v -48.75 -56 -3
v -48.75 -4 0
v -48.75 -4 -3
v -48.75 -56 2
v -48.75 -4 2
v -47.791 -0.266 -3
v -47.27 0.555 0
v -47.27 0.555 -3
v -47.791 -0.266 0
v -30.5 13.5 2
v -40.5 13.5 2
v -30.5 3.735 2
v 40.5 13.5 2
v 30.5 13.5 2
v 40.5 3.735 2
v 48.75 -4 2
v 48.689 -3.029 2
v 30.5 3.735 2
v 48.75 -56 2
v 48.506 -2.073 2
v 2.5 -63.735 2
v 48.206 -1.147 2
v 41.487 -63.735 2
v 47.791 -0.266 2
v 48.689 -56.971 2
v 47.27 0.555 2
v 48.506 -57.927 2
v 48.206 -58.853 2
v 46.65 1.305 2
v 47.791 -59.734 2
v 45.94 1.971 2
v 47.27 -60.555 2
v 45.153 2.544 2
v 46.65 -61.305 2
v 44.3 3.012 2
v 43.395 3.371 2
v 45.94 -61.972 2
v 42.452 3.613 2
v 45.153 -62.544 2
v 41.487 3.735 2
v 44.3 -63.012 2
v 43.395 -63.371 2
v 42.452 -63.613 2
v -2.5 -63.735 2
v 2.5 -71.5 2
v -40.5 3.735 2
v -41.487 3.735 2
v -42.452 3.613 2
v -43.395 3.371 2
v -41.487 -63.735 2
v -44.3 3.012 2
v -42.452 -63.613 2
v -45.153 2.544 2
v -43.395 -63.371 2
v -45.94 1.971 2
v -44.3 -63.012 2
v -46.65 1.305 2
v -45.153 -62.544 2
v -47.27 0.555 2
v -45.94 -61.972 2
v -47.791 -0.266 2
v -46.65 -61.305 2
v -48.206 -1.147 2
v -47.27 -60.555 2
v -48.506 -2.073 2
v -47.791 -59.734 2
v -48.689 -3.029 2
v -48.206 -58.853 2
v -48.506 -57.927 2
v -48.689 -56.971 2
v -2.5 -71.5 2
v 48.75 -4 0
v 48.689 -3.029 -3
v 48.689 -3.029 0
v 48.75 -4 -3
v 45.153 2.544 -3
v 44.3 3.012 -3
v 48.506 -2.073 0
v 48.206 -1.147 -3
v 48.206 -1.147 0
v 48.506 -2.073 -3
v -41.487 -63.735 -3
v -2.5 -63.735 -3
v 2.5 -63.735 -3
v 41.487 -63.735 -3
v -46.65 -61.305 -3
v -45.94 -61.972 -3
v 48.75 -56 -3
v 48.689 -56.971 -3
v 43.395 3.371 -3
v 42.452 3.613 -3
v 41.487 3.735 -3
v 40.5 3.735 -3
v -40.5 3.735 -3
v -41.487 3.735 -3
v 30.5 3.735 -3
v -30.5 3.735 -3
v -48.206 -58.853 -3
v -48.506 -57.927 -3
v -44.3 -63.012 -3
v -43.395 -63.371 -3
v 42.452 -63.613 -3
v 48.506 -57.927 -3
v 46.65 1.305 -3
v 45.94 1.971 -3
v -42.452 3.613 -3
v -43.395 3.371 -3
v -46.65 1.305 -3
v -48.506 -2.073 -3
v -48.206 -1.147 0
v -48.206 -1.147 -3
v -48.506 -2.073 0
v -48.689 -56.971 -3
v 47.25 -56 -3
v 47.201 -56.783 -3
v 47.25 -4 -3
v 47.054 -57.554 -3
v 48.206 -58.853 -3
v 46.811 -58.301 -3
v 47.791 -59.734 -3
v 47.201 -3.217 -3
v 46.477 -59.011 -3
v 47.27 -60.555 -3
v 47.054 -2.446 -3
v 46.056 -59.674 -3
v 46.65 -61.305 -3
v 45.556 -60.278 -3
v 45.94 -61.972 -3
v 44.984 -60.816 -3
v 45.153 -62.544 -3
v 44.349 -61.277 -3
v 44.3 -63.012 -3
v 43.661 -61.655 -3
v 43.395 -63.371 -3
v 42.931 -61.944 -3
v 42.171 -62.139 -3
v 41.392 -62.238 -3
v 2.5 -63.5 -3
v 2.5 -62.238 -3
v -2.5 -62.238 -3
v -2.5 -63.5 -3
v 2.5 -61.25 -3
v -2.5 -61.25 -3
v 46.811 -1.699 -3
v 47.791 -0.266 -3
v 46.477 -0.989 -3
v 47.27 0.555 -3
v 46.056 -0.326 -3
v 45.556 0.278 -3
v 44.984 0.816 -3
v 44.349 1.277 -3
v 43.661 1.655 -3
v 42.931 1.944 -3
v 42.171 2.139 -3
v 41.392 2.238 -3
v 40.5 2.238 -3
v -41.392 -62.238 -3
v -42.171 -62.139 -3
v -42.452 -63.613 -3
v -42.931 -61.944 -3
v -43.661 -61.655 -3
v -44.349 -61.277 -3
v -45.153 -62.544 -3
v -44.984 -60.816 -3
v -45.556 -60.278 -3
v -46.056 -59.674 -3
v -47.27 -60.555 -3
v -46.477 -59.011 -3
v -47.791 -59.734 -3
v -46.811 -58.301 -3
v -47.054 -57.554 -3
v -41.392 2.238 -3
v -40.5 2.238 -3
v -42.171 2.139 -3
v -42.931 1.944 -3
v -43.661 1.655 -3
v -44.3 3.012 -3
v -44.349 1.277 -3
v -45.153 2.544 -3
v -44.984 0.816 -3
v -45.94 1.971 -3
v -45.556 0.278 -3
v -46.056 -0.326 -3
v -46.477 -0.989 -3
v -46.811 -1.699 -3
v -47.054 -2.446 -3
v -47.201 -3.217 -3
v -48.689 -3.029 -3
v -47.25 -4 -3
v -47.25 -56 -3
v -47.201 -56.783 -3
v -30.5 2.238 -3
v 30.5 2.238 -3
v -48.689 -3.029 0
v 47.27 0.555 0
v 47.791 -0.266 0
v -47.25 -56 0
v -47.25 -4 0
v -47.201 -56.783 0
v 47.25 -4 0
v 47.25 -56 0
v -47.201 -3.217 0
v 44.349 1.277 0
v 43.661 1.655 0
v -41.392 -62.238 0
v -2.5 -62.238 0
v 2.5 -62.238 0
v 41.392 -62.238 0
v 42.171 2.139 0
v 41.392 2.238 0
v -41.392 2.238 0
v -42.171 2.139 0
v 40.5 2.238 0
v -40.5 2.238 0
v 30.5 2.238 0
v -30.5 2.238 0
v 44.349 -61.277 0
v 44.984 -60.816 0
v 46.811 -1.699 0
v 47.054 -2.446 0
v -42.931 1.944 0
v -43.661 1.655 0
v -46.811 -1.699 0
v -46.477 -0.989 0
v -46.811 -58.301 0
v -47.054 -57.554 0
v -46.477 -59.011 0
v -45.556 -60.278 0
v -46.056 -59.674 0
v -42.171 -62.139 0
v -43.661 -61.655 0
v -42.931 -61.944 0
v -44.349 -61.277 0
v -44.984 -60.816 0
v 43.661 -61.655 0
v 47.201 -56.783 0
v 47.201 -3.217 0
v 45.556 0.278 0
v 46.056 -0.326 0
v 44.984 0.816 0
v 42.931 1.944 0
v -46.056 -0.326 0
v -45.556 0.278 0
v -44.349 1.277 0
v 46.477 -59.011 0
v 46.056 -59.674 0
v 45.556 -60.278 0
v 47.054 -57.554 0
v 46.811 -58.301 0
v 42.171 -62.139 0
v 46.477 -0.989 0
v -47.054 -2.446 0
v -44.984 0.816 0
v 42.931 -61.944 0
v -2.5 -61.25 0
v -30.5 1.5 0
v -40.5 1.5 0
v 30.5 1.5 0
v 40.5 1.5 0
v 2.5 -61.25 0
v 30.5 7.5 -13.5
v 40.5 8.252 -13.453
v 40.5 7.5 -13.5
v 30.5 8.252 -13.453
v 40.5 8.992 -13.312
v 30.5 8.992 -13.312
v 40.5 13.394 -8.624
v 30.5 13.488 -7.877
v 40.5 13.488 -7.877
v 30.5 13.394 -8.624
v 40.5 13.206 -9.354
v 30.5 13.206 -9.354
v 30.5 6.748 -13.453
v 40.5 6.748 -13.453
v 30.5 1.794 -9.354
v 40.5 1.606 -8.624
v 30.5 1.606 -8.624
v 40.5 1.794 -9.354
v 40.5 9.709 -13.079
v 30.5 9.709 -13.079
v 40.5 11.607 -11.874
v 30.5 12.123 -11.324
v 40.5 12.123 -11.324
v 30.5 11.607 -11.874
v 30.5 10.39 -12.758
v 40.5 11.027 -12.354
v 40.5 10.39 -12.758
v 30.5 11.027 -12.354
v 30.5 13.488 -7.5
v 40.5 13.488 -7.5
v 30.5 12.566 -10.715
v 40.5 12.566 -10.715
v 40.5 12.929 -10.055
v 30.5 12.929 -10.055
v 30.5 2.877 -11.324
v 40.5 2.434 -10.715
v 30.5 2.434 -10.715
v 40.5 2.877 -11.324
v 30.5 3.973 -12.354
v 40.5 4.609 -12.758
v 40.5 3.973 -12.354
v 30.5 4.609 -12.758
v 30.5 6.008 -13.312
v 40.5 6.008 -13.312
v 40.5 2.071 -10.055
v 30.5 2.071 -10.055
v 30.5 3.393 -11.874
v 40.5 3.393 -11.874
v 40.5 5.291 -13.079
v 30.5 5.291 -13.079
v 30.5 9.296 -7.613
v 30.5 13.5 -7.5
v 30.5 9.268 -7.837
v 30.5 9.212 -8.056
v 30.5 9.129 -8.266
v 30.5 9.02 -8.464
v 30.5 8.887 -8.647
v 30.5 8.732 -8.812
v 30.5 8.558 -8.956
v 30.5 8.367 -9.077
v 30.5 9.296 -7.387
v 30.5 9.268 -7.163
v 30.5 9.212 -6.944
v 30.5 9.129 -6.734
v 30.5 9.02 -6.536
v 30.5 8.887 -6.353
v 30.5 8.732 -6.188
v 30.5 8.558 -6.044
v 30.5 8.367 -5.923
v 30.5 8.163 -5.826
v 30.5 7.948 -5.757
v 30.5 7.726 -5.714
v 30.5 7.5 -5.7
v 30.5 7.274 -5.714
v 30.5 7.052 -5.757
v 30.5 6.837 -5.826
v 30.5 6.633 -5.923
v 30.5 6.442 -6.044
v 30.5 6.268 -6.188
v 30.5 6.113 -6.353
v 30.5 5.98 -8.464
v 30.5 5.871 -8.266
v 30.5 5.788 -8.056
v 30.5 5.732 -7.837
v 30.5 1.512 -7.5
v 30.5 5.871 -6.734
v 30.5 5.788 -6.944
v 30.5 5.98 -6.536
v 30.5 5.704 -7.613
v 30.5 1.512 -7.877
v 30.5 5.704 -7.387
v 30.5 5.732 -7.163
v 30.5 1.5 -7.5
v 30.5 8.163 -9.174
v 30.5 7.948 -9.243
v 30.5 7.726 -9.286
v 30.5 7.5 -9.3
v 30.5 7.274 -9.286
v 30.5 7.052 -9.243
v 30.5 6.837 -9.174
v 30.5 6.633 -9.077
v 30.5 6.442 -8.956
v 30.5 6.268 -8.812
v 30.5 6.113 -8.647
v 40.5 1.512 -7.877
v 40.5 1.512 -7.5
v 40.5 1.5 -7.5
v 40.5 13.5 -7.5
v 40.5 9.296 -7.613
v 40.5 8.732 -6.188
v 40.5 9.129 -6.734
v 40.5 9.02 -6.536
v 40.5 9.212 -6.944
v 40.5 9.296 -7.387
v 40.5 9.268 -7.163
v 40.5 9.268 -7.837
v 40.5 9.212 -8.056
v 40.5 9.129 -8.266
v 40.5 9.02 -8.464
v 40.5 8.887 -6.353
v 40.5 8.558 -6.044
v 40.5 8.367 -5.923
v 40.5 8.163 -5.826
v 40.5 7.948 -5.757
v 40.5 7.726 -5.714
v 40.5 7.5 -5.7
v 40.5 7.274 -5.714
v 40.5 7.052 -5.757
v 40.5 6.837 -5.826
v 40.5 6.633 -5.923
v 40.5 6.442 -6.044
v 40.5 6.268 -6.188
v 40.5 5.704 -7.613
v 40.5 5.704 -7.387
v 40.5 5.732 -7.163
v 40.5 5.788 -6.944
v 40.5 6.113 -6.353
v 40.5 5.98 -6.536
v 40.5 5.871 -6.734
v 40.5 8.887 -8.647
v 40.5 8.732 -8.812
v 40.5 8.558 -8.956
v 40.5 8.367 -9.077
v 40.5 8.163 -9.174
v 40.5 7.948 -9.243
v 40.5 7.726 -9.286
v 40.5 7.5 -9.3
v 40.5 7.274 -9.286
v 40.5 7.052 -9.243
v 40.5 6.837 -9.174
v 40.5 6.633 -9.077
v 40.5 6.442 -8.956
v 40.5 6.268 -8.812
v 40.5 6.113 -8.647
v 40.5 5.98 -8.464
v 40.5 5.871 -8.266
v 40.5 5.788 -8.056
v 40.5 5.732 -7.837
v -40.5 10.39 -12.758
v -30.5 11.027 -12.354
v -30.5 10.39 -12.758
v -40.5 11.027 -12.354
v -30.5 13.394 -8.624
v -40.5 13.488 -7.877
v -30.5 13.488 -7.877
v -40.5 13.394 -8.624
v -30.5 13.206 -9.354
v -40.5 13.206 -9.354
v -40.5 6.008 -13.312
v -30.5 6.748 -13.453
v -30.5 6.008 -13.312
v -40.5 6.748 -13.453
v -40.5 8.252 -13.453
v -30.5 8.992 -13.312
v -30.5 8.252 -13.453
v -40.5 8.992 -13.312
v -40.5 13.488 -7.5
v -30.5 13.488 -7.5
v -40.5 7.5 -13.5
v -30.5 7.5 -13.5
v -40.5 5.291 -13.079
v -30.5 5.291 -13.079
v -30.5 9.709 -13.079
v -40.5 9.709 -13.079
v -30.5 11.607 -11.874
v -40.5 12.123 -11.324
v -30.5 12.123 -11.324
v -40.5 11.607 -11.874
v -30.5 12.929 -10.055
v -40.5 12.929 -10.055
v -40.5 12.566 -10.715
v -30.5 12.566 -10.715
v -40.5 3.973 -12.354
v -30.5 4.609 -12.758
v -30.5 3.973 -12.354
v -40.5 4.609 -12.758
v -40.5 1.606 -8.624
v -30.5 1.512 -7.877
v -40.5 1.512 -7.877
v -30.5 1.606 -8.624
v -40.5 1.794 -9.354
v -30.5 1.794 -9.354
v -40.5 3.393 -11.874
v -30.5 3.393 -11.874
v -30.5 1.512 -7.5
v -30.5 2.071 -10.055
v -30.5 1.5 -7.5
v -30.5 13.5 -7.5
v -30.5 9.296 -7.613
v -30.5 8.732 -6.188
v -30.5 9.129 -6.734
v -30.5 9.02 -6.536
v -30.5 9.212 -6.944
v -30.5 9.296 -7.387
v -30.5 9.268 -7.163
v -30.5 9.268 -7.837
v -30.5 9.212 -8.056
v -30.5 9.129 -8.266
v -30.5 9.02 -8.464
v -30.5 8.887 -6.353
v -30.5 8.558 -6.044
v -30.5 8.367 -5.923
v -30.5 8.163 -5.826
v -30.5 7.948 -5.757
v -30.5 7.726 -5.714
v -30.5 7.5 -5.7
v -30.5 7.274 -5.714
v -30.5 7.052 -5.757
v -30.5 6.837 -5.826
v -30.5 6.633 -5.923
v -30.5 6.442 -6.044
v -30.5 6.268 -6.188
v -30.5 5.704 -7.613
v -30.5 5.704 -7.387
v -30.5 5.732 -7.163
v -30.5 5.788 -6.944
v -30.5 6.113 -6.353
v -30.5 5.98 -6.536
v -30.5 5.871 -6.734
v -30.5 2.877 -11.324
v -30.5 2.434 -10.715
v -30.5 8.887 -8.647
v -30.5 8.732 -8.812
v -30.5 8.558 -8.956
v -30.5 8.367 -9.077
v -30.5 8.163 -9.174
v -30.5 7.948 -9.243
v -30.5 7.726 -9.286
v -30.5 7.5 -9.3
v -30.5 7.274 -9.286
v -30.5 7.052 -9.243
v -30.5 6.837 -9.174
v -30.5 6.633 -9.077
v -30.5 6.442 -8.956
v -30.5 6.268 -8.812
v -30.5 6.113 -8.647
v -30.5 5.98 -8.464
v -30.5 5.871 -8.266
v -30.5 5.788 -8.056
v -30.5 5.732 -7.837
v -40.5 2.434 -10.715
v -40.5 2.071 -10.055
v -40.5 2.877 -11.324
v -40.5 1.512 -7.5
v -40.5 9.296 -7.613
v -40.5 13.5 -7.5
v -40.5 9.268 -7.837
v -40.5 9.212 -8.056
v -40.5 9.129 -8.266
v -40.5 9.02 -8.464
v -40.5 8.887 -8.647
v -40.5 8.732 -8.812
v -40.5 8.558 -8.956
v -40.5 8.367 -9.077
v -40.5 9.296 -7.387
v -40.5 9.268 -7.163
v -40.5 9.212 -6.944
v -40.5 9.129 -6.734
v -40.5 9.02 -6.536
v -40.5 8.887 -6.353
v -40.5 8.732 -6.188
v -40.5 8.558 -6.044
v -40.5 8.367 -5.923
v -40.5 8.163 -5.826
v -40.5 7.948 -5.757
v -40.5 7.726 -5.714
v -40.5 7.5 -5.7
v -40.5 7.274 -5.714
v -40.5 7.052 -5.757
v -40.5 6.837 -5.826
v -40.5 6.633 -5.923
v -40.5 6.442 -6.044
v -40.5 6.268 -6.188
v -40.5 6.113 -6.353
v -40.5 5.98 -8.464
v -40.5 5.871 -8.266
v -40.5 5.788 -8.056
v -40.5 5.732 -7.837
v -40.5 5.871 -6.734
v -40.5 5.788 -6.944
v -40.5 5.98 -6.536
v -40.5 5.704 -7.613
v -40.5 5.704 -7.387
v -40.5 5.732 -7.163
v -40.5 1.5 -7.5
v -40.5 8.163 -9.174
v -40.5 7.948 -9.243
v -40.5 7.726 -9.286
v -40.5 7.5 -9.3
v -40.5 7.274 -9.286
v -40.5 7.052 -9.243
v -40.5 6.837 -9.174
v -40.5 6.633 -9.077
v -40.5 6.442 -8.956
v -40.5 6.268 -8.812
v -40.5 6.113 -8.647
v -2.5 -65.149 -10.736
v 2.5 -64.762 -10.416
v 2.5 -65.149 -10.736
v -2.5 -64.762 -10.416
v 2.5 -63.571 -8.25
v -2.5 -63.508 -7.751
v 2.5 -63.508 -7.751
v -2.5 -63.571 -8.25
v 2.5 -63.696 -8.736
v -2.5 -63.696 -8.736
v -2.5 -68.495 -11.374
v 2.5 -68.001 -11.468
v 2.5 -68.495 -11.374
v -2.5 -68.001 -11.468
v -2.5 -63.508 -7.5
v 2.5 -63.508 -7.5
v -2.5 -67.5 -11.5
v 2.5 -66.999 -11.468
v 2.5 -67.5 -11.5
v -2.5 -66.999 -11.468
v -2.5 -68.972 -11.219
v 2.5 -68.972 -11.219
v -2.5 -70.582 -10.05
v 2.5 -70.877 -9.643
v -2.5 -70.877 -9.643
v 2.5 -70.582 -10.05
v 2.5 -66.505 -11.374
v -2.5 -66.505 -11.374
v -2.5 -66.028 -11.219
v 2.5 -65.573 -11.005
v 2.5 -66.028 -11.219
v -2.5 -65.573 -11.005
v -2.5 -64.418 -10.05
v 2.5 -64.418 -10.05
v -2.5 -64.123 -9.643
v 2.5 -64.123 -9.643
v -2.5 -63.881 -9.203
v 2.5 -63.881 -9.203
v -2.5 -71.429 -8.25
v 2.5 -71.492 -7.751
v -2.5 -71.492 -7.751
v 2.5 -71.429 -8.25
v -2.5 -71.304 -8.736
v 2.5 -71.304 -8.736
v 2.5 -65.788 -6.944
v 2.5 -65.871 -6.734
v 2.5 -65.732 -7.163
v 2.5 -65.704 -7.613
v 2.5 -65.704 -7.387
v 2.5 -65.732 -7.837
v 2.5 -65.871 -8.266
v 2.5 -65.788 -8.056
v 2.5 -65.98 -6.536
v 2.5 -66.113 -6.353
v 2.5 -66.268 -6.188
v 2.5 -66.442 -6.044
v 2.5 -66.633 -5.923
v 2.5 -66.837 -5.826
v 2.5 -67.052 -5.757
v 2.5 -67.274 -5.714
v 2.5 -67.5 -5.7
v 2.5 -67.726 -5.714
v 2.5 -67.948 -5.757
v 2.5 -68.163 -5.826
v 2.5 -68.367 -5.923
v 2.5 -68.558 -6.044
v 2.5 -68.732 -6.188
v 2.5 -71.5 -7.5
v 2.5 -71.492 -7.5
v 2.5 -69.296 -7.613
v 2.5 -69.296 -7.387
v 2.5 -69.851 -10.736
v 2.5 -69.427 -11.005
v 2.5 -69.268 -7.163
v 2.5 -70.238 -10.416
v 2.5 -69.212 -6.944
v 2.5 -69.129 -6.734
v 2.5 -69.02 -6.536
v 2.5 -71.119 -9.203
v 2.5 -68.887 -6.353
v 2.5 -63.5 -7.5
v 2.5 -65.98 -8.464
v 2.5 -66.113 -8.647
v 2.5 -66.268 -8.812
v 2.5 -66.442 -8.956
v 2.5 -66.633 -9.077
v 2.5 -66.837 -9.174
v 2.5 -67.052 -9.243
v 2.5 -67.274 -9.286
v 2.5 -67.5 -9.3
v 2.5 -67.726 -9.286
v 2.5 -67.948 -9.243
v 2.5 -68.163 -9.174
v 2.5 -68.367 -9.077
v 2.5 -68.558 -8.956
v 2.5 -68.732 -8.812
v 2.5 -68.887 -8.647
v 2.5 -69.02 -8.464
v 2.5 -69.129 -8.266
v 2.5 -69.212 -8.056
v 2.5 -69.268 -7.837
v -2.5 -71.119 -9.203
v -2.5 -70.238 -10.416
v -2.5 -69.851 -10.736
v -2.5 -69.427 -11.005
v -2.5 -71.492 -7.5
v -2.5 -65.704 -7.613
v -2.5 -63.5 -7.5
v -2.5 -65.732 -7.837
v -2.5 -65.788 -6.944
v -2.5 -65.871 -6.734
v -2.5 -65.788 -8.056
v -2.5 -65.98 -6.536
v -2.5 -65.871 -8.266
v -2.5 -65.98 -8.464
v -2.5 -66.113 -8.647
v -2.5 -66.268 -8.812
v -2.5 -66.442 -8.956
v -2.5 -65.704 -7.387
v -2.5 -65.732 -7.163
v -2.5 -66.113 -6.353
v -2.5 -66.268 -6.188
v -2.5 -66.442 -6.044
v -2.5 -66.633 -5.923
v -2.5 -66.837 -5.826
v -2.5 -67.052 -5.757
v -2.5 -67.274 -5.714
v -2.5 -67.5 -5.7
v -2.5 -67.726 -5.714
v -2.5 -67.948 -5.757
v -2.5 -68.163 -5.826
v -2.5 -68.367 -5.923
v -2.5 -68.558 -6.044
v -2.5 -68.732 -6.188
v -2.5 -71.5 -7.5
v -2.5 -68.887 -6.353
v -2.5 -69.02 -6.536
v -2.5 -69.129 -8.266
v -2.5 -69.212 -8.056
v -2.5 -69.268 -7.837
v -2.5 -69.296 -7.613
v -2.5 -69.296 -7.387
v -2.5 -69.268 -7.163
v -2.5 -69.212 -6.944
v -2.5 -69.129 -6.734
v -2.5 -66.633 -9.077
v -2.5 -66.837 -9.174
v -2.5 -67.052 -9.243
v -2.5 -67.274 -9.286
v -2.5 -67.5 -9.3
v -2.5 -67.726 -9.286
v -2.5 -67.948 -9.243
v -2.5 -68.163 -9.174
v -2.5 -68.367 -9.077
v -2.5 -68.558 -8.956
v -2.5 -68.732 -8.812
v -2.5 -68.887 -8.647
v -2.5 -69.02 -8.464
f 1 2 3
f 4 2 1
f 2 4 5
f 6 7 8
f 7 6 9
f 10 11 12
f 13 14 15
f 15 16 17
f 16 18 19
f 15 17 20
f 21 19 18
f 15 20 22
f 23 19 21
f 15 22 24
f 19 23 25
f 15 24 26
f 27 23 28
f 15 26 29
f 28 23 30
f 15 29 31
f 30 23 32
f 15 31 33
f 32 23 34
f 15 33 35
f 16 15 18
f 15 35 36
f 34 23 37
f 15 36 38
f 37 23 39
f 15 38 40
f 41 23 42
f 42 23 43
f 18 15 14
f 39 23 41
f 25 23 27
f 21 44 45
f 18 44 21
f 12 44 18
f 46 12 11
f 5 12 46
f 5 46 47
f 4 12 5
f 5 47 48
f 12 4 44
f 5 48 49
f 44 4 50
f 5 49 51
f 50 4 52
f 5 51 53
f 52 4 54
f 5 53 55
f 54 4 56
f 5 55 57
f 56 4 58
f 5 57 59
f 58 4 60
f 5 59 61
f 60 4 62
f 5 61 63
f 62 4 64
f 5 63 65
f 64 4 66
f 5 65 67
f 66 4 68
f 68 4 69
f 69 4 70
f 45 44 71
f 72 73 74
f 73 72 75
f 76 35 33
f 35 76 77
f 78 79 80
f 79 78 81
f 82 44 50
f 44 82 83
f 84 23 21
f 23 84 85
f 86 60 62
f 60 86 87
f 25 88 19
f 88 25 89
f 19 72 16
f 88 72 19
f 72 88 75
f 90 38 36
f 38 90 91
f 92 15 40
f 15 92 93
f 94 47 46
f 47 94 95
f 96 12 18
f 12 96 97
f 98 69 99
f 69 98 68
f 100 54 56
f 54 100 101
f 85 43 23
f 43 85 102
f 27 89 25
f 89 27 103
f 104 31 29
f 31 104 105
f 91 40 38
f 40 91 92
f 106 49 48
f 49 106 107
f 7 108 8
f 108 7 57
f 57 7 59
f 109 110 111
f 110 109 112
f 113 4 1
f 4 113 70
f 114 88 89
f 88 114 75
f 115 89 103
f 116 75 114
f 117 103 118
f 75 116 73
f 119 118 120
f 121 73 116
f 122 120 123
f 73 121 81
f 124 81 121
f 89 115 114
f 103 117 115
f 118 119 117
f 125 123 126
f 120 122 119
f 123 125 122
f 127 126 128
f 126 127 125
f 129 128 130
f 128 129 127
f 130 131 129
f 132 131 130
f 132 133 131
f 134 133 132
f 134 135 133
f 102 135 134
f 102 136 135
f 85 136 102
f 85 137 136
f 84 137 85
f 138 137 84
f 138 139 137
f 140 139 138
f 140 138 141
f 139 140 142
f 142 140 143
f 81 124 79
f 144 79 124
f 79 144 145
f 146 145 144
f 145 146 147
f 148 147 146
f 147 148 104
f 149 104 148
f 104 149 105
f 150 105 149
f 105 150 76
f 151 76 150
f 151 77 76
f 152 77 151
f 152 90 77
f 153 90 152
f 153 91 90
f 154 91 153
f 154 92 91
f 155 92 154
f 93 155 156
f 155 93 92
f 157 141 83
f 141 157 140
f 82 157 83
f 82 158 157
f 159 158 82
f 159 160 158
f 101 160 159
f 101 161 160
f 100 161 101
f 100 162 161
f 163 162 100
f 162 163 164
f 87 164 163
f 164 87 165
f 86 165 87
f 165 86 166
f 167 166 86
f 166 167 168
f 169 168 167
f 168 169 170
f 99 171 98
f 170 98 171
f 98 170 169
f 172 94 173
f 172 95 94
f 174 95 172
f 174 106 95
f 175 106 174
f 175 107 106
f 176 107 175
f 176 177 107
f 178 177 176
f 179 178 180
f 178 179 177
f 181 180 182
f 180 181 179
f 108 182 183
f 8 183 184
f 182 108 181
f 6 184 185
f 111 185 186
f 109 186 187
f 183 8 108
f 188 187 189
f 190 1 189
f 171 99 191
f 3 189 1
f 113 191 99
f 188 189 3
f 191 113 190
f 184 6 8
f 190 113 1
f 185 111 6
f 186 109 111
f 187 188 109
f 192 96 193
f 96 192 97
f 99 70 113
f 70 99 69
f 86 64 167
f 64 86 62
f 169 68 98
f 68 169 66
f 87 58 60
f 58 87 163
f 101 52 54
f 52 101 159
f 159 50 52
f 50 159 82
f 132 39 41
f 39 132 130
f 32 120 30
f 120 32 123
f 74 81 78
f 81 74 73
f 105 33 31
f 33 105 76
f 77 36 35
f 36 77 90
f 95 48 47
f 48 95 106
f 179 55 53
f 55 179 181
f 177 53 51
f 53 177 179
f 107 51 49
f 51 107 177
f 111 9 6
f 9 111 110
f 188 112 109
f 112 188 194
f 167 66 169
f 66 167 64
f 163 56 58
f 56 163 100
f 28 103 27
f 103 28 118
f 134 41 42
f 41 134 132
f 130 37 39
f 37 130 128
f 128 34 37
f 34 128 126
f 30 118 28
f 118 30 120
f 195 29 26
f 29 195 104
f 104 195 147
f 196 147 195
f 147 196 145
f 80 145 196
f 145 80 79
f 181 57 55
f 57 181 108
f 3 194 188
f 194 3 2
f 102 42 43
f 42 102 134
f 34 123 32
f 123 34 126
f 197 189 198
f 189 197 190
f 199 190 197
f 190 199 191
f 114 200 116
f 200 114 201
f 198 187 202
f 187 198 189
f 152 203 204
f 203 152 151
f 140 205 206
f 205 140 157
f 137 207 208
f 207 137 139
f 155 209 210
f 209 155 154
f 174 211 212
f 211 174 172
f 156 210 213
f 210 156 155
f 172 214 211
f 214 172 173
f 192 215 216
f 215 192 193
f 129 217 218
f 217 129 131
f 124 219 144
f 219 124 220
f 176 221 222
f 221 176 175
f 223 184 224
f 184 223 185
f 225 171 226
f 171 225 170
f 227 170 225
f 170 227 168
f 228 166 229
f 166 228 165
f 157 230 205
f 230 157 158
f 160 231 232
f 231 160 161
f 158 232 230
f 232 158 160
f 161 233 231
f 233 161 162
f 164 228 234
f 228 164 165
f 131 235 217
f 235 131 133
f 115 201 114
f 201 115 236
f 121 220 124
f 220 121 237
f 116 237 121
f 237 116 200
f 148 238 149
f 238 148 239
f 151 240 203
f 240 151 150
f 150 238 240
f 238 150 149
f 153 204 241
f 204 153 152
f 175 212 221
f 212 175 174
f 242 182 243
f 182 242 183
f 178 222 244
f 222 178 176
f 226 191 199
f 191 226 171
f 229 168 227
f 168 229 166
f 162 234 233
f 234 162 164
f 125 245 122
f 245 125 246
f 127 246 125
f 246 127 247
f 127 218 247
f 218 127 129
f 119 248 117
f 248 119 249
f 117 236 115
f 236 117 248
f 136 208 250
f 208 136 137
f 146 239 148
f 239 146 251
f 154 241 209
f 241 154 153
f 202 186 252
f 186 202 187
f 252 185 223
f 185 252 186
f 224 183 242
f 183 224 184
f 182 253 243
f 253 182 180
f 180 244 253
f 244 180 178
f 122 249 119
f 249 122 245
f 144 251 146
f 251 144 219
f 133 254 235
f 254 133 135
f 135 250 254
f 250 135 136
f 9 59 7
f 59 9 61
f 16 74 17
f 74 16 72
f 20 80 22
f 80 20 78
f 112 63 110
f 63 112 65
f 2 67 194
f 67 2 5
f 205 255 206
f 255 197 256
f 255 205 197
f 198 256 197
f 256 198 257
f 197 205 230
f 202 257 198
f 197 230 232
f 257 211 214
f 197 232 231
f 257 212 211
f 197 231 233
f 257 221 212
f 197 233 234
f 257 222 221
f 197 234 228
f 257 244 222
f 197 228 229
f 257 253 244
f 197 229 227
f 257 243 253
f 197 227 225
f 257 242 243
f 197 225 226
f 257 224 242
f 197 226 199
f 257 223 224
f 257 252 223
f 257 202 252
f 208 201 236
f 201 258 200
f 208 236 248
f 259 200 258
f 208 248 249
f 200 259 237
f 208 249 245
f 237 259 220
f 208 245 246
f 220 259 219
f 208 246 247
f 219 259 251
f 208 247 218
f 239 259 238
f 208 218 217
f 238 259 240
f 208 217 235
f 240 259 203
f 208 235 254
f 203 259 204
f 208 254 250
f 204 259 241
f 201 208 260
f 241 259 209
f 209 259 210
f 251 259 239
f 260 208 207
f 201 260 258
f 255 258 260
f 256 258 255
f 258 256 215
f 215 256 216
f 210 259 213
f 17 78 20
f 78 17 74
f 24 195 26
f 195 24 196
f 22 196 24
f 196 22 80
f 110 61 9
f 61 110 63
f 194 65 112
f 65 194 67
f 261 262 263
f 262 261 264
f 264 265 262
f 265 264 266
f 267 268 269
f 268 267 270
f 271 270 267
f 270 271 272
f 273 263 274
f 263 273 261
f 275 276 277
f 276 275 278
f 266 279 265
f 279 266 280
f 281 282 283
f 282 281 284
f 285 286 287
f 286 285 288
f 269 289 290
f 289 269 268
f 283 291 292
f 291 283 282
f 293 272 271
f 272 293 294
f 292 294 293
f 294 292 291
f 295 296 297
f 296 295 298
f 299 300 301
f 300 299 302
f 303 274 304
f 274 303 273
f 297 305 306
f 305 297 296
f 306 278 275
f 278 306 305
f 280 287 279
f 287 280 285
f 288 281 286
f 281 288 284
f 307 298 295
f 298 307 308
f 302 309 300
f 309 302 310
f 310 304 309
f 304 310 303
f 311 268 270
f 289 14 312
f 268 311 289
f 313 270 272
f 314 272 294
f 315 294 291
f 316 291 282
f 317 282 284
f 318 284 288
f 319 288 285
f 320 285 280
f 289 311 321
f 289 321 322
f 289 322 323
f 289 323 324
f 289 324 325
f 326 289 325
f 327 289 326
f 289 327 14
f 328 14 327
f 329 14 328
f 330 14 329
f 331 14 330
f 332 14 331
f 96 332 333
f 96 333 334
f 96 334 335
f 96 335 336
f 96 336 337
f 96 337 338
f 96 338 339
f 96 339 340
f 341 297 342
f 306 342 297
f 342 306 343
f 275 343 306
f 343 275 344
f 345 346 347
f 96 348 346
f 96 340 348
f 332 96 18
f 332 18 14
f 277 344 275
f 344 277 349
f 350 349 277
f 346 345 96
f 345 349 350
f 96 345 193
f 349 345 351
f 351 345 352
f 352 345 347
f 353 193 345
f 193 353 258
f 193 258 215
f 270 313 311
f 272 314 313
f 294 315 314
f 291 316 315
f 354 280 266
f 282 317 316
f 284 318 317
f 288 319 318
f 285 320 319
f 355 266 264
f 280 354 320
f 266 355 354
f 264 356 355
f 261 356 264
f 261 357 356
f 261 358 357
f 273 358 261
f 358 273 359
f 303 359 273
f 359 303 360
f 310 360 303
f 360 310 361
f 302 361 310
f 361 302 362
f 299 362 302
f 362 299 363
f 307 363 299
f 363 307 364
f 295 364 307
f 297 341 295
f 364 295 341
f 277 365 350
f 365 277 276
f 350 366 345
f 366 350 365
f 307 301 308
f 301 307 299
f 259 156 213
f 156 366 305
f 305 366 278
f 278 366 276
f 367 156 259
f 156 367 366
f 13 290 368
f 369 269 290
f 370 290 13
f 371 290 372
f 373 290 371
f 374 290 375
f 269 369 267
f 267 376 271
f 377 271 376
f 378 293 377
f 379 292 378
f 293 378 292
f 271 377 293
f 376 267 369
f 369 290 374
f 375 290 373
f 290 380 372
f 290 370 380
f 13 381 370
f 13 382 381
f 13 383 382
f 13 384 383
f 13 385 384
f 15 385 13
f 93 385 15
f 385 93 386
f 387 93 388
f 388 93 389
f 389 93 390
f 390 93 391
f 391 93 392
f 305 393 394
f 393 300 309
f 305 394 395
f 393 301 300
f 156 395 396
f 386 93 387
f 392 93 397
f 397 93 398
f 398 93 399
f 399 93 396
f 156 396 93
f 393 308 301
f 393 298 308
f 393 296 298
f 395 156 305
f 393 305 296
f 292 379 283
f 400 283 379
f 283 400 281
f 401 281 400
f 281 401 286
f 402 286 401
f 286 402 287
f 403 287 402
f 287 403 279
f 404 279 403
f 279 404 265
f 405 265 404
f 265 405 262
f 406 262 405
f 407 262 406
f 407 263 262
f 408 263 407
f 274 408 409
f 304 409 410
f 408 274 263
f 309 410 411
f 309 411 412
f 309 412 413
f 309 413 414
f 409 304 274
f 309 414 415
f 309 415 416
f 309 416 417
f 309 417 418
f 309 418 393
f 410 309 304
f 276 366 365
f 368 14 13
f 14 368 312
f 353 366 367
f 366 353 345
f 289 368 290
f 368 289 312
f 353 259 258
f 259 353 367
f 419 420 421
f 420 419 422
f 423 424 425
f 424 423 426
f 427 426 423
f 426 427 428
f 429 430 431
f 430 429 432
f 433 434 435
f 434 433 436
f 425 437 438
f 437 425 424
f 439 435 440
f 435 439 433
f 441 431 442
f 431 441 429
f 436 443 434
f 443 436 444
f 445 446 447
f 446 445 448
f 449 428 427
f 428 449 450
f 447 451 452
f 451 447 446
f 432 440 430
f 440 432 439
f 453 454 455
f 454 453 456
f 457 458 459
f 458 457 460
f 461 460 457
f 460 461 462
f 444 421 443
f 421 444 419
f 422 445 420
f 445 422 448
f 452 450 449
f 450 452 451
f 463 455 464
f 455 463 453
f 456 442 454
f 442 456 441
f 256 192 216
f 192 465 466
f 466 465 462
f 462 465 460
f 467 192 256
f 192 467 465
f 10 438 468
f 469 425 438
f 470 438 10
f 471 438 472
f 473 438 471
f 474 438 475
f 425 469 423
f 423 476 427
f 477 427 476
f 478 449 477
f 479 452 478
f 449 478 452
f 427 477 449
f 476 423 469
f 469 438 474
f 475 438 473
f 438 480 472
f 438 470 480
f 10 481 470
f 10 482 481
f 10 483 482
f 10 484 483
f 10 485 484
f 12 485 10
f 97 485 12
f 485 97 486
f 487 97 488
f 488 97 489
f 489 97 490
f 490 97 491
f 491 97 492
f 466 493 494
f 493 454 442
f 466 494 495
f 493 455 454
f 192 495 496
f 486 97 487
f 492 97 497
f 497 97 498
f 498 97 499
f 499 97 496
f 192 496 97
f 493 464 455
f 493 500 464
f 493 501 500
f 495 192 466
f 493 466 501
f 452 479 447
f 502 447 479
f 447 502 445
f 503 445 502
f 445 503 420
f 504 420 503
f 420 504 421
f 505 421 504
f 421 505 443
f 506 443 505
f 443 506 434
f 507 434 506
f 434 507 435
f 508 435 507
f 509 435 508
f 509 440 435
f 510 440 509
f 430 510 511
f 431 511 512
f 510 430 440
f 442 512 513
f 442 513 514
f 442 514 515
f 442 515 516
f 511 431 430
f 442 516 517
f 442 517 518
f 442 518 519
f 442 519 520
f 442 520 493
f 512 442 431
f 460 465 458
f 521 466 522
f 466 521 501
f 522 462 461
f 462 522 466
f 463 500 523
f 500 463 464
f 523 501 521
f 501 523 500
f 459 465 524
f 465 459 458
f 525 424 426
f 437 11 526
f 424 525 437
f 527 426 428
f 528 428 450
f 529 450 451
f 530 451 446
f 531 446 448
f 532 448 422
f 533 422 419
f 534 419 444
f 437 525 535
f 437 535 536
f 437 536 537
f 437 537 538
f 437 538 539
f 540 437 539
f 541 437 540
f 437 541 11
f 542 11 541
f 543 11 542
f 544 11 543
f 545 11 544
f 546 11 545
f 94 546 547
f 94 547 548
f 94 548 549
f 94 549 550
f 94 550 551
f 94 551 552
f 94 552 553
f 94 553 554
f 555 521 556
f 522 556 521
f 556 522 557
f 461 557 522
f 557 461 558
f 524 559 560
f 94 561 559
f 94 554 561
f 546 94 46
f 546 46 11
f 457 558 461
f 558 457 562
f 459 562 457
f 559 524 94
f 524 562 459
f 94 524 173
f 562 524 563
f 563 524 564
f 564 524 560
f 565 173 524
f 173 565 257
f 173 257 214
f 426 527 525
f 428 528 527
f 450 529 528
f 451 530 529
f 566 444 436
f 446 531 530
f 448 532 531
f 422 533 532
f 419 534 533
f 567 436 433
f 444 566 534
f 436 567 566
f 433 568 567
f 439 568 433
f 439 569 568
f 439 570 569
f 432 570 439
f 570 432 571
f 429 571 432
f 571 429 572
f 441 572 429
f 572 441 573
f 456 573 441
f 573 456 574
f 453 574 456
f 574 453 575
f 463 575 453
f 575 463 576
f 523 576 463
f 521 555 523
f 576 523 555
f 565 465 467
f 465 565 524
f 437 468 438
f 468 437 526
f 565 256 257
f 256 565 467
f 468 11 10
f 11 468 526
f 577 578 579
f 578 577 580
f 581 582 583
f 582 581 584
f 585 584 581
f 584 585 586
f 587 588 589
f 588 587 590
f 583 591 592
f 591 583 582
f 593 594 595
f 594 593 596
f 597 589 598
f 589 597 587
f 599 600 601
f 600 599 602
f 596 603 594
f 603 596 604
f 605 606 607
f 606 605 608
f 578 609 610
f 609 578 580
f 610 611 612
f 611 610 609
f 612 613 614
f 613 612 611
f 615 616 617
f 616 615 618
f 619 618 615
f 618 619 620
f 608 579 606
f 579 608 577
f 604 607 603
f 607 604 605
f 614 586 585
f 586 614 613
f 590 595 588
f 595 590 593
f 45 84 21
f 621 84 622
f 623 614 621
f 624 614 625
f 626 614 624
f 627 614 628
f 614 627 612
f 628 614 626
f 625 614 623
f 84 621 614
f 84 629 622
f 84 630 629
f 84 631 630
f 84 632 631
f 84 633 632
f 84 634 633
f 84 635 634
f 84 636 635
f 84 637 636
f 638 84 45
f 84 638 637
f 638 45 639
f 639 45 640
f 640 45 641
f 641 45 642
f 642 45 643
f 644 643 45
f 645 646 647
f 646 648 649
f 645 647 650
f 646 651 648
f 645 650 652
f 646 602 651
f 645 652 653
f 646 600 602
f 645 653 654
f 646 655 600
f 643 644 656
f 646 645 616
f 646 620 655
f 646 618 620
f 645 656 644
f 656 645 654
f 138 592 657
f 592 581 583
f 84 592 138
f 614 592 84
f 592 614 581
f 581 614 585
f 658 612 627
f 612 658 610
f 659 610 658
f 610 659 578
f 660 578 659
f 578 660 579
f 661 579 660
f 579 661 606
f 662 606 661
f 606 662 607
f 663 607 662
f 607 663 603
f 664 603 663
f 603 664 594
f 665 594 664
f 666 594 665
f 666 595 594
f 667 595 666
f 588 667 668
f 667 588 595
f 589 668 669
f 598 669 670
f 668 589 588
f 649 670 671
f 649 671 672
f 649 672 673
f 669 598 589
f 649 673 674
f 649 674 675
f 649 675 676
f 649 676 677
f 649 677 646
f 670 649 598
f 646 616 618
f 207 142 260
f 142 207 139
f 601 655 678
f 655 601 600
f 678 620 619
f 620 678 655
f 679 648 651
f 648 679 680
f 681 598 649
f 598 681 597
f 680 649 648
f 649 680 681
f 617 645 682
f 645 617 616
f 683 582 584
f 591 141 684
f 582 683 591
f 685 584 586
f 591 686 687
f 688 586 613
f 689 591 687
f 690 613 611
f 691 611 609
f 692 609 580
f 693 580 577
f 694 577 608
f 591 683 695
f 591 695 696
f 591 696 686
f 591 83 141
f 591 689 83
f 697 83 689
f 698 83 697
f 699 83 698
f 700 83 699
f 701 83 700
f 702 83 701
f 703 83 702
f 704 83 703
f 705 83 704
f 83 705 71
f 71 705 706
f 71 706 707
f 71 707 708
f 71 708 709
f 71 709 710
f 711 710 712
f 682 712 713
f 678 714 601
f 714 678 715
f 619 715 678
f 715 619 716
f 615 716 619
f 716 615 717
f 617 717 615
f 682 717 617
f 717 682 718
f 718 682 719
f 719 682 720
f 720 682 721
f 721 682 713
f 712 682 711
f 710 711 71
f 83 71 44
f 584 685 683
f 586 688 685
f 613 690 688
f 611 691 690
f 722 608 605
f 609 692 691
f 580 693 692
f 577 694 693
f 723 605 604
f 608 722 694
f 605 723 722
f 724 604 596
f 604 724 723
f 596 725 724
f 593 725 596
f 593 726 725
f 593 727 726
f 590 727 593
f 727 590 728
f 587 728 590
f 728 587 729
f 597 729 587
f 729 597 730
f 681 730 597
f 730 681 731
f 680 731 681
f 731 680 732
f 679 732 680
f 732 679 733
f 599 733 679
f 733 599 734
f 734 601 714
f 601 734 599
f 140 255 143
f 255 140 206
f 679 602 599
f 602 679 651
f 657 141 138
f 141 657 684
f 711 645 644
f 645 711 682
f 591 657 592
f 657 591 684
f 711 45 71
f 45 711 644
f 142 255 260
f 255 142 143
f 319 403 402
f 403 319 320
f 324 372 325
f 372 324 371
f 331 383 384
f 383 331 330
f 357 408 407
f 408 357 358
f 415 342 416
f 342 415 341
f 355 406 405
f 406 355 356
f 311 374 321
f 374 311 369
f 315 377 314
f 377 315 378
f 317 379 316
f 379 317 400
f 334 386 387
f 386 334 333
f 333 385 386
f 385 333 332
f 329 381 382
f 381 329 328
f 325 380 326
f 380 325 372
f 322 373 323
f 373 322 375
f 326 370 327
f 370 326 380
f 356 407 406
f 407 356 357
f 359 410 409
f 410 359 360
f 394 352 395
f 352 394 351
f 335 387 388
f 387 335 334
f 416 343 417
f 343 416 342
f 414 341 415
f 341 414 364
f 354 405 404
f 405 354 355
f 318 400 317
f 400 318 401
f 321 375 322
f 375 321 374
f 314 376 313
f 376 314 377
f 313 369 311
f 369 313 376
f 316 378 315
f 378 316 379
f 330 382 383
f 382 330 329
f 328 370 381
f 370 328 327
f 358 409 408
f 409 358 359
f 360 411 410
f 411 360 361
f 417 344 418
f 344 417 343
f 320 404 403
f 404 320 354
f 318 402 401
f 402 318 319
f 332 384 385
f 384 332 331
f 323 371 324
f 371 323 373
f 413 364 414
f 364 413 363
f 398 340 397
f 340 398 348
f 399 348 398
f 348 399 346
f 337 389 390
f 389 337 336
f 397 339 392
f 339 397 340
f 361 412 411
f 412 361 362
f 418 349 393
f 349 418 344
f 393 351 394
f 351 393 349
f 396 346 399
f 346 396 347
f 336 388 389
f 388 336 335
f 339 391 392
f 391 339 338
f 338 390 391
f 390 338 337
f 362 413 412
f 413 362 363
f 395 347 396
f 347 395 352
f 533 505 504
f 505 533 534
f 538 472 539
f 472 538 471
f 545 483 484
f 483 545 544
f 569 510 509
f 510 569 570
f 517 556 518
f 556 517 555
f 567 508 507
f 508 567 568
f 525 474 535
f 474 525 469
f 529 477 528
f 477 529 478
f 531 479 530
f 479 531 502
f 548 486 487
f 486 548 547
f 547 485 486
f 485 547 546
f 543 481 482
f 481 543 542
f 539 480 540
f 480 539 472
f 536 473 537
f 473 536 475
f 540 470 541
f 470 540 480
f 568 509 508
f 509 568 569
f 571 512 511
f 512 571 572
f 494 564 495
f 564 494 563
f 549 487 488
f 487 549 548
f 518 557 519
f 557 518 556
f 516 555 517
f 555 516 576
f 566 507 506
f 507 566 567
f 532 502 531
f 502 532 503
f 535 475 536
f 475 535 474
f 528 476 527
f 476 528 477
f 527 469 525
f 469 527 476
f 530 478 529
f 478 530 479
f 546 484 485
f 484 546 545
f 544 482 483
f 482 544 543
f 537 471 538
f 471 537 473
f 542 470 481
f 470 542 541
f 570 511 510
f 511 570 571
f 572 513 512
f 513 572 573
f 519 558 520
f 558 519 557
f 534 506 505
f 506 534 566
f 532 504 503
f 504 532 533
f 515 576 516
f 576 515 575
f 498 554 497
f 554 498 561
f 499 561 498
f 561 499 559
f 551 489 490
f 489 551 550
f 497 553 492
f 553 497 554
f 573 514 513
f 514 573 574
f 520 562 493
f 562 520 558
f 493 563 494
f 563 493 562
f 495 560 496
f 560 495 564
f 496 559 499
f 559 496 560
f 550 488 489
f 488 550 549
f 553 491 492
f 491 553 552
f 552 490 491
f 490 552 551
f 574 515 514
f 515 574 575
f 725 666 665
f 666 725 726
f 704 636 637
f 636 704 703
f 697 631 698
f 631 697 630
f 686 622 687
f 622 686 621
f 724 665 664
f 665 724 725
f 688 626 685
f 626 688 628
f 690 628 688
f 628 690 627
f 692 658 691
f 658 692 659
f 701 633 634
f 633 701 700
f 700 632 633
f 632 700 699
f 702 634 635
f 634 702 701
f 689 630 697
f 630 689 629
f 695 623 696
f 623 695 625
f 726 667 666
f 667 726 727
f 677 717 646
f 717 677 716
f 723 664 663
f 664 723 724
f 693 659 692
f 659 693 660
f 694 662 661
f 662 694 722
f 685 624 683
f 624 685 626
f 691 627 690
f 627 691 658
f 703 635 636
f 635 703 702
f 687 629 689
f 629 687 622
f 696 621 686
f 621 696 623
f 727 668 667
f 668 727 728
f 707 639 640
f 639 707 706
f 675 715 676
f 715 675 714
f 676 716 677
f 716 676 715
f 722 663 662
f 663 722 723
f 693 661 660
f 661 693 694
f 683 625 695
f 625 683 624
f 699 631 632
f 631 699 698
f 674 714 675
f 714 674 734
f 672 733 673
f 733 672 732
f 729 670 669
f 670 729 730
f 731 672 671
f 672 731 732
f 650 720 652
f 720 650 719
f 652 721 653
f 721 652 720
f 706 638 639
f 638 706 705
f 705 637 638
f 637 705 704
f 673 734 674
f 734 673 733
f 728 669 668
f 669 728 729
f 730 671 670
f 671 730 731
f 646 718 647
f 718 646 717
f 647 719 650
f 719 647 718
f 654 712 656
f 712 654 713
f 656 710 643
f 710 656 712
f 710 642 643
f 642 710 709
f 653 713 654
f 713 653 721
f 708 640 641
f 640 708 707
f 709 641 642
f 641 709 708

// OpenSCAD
$fn = 50;


difference() {
	union() {
		translate(v = [0, -30.0000000000, -3]) {
			rotate(a = [0, 0, 0]) {
				difference() {
					union() {
						hull() {
							translate(v = [-41.0000000000, 26.0000000000, 0]) {
								cylinder(h = 5, r = 7.7500000000);
							}
							translate(v = [41.0000000000, 26.0000000000, 0]) {
								cylinder(h = 5, r = 7.7500000000);
							}
							translate(v = [-41.0000000000, -26.0000000000, 0]) {
								cylinder(h = 5, r = 7.7500000000);
							}
							translate(v = [41.0000000000, -26.0000000000, 0]) {
								cylinder(h = 5, r = 7.7500000000);
							}
						}
					}
					union() {
						hull() {
							translate(v = [-41.0000000000, 26.0000000000, 0]) {
								cylinder(h = 5, r = 6.2500000000);
							}
							translate(v = [41.0000000000, 26.0000000000, 0]) {
								cylinder(h = 5, r = 6.2500000000);
							}
							translate(v = [-41.0000000000, -26.0000000000, 0]) {
								cylinder(h = 5, r = 6.2500000000);
							}
							translate(v = [41.0000000000, -26.0000000000, 0]) {
								cylinder(h = 5, r = 6.2500000000);
							}
						}
					}
				}
			}
		}
		translate(v = [0, -30.0000000000, 0]) {
			hull() {
				translate(v = [-41.0000000000, 26.0000000000, 0]) {
					cylinder(h = 2, r = 7.7500000000);
				}
				translate(v = [41.0000000000, 26.0000000000, 0]) {
					cylinder(h = 2, r = 7.7500000000);
				}
				translate(v = [-41.0000000000, -26.0000000000, 0]) {
					cylinder(h = 2, r = 7.7500000000);
				}
				translate(v = [41.0000000000, -26.0000000000, 0]) {
					cylinder(h = 2, r = 7.7500000000);
				}
			}
		}
		translate(v = [30.5000000000, 7.5000000000, -7.5000000000]) {
			rotate(a = [0, 90, 0]) {
				cylinder(h = 10, r = 6.0000000000);
			}
		}
		translate(v = [30.5000000000, 1.5000000000, -7.5000000000]) {
			cube(size = [10, 12, 7.5000000000]);
		}
		translate(v = [30.5000000000, -15.0000000000, 0.0000000000]) {
			cube(size = [10, 28.5000000000, 2]);
		}
		translate(v = [-40.5000000000, 7.5000000000, -7.5000000000]) {
			rotate(a = [0, 90, 0]) {
				cylinder(h = 10, r = 6.0000000000);
			}
		}
		translate(v = [-40.5000000000, 1.5000000000, -7.5000000000]) {
			cube(size = [10, 12, 7.5000000000]);
		}
		translate(v = [-40.5000000000, -15.0000000000, 0.0000000000]) {
			cube(size = [10, 28.5000000000, 2]);
		}
		translate(v = [-2.5000000000, -67.5000000000, -7.5000000000]) {
			rotate(a = [0, 90, 0]) {
				cylinder(h = 5, r = 4.0000000000);
			}
		}
		translate(v = [-2.5000000000, -71.5000000000, -7.5000000000]) {
			cube(size = [5, 8, 7.5000000000]);
		}
		translate(v = [-2.5000000000, -71.5000000000, -3.0000000000]) {
			cube(size = [5, 10.2500000000, 5]);
		}
	}
	union() {
		translate(v = [30.5000000000, 7.5000000000, -7.5000000000]) {
			rotate(a = [0, 90, 0]) {
				cylinder(h = 10, r = 1.8000000000);
			}
		}
		translate(v = [-40.5000000000, 7.5000000000, -7.5000000000]) {
			rotate(a = [0, 90, 0]) {
				cylinder(h = 10, r = 1.8000000000);
			}
		}
		translate(v = [-5.0000000000, -67.5000000000, -7.5000000000]) {
			rotate(a = [0, 90, 0]) {
				cylinder(h = 10, r = 1.8000000000);
			}
		}
	}
}
